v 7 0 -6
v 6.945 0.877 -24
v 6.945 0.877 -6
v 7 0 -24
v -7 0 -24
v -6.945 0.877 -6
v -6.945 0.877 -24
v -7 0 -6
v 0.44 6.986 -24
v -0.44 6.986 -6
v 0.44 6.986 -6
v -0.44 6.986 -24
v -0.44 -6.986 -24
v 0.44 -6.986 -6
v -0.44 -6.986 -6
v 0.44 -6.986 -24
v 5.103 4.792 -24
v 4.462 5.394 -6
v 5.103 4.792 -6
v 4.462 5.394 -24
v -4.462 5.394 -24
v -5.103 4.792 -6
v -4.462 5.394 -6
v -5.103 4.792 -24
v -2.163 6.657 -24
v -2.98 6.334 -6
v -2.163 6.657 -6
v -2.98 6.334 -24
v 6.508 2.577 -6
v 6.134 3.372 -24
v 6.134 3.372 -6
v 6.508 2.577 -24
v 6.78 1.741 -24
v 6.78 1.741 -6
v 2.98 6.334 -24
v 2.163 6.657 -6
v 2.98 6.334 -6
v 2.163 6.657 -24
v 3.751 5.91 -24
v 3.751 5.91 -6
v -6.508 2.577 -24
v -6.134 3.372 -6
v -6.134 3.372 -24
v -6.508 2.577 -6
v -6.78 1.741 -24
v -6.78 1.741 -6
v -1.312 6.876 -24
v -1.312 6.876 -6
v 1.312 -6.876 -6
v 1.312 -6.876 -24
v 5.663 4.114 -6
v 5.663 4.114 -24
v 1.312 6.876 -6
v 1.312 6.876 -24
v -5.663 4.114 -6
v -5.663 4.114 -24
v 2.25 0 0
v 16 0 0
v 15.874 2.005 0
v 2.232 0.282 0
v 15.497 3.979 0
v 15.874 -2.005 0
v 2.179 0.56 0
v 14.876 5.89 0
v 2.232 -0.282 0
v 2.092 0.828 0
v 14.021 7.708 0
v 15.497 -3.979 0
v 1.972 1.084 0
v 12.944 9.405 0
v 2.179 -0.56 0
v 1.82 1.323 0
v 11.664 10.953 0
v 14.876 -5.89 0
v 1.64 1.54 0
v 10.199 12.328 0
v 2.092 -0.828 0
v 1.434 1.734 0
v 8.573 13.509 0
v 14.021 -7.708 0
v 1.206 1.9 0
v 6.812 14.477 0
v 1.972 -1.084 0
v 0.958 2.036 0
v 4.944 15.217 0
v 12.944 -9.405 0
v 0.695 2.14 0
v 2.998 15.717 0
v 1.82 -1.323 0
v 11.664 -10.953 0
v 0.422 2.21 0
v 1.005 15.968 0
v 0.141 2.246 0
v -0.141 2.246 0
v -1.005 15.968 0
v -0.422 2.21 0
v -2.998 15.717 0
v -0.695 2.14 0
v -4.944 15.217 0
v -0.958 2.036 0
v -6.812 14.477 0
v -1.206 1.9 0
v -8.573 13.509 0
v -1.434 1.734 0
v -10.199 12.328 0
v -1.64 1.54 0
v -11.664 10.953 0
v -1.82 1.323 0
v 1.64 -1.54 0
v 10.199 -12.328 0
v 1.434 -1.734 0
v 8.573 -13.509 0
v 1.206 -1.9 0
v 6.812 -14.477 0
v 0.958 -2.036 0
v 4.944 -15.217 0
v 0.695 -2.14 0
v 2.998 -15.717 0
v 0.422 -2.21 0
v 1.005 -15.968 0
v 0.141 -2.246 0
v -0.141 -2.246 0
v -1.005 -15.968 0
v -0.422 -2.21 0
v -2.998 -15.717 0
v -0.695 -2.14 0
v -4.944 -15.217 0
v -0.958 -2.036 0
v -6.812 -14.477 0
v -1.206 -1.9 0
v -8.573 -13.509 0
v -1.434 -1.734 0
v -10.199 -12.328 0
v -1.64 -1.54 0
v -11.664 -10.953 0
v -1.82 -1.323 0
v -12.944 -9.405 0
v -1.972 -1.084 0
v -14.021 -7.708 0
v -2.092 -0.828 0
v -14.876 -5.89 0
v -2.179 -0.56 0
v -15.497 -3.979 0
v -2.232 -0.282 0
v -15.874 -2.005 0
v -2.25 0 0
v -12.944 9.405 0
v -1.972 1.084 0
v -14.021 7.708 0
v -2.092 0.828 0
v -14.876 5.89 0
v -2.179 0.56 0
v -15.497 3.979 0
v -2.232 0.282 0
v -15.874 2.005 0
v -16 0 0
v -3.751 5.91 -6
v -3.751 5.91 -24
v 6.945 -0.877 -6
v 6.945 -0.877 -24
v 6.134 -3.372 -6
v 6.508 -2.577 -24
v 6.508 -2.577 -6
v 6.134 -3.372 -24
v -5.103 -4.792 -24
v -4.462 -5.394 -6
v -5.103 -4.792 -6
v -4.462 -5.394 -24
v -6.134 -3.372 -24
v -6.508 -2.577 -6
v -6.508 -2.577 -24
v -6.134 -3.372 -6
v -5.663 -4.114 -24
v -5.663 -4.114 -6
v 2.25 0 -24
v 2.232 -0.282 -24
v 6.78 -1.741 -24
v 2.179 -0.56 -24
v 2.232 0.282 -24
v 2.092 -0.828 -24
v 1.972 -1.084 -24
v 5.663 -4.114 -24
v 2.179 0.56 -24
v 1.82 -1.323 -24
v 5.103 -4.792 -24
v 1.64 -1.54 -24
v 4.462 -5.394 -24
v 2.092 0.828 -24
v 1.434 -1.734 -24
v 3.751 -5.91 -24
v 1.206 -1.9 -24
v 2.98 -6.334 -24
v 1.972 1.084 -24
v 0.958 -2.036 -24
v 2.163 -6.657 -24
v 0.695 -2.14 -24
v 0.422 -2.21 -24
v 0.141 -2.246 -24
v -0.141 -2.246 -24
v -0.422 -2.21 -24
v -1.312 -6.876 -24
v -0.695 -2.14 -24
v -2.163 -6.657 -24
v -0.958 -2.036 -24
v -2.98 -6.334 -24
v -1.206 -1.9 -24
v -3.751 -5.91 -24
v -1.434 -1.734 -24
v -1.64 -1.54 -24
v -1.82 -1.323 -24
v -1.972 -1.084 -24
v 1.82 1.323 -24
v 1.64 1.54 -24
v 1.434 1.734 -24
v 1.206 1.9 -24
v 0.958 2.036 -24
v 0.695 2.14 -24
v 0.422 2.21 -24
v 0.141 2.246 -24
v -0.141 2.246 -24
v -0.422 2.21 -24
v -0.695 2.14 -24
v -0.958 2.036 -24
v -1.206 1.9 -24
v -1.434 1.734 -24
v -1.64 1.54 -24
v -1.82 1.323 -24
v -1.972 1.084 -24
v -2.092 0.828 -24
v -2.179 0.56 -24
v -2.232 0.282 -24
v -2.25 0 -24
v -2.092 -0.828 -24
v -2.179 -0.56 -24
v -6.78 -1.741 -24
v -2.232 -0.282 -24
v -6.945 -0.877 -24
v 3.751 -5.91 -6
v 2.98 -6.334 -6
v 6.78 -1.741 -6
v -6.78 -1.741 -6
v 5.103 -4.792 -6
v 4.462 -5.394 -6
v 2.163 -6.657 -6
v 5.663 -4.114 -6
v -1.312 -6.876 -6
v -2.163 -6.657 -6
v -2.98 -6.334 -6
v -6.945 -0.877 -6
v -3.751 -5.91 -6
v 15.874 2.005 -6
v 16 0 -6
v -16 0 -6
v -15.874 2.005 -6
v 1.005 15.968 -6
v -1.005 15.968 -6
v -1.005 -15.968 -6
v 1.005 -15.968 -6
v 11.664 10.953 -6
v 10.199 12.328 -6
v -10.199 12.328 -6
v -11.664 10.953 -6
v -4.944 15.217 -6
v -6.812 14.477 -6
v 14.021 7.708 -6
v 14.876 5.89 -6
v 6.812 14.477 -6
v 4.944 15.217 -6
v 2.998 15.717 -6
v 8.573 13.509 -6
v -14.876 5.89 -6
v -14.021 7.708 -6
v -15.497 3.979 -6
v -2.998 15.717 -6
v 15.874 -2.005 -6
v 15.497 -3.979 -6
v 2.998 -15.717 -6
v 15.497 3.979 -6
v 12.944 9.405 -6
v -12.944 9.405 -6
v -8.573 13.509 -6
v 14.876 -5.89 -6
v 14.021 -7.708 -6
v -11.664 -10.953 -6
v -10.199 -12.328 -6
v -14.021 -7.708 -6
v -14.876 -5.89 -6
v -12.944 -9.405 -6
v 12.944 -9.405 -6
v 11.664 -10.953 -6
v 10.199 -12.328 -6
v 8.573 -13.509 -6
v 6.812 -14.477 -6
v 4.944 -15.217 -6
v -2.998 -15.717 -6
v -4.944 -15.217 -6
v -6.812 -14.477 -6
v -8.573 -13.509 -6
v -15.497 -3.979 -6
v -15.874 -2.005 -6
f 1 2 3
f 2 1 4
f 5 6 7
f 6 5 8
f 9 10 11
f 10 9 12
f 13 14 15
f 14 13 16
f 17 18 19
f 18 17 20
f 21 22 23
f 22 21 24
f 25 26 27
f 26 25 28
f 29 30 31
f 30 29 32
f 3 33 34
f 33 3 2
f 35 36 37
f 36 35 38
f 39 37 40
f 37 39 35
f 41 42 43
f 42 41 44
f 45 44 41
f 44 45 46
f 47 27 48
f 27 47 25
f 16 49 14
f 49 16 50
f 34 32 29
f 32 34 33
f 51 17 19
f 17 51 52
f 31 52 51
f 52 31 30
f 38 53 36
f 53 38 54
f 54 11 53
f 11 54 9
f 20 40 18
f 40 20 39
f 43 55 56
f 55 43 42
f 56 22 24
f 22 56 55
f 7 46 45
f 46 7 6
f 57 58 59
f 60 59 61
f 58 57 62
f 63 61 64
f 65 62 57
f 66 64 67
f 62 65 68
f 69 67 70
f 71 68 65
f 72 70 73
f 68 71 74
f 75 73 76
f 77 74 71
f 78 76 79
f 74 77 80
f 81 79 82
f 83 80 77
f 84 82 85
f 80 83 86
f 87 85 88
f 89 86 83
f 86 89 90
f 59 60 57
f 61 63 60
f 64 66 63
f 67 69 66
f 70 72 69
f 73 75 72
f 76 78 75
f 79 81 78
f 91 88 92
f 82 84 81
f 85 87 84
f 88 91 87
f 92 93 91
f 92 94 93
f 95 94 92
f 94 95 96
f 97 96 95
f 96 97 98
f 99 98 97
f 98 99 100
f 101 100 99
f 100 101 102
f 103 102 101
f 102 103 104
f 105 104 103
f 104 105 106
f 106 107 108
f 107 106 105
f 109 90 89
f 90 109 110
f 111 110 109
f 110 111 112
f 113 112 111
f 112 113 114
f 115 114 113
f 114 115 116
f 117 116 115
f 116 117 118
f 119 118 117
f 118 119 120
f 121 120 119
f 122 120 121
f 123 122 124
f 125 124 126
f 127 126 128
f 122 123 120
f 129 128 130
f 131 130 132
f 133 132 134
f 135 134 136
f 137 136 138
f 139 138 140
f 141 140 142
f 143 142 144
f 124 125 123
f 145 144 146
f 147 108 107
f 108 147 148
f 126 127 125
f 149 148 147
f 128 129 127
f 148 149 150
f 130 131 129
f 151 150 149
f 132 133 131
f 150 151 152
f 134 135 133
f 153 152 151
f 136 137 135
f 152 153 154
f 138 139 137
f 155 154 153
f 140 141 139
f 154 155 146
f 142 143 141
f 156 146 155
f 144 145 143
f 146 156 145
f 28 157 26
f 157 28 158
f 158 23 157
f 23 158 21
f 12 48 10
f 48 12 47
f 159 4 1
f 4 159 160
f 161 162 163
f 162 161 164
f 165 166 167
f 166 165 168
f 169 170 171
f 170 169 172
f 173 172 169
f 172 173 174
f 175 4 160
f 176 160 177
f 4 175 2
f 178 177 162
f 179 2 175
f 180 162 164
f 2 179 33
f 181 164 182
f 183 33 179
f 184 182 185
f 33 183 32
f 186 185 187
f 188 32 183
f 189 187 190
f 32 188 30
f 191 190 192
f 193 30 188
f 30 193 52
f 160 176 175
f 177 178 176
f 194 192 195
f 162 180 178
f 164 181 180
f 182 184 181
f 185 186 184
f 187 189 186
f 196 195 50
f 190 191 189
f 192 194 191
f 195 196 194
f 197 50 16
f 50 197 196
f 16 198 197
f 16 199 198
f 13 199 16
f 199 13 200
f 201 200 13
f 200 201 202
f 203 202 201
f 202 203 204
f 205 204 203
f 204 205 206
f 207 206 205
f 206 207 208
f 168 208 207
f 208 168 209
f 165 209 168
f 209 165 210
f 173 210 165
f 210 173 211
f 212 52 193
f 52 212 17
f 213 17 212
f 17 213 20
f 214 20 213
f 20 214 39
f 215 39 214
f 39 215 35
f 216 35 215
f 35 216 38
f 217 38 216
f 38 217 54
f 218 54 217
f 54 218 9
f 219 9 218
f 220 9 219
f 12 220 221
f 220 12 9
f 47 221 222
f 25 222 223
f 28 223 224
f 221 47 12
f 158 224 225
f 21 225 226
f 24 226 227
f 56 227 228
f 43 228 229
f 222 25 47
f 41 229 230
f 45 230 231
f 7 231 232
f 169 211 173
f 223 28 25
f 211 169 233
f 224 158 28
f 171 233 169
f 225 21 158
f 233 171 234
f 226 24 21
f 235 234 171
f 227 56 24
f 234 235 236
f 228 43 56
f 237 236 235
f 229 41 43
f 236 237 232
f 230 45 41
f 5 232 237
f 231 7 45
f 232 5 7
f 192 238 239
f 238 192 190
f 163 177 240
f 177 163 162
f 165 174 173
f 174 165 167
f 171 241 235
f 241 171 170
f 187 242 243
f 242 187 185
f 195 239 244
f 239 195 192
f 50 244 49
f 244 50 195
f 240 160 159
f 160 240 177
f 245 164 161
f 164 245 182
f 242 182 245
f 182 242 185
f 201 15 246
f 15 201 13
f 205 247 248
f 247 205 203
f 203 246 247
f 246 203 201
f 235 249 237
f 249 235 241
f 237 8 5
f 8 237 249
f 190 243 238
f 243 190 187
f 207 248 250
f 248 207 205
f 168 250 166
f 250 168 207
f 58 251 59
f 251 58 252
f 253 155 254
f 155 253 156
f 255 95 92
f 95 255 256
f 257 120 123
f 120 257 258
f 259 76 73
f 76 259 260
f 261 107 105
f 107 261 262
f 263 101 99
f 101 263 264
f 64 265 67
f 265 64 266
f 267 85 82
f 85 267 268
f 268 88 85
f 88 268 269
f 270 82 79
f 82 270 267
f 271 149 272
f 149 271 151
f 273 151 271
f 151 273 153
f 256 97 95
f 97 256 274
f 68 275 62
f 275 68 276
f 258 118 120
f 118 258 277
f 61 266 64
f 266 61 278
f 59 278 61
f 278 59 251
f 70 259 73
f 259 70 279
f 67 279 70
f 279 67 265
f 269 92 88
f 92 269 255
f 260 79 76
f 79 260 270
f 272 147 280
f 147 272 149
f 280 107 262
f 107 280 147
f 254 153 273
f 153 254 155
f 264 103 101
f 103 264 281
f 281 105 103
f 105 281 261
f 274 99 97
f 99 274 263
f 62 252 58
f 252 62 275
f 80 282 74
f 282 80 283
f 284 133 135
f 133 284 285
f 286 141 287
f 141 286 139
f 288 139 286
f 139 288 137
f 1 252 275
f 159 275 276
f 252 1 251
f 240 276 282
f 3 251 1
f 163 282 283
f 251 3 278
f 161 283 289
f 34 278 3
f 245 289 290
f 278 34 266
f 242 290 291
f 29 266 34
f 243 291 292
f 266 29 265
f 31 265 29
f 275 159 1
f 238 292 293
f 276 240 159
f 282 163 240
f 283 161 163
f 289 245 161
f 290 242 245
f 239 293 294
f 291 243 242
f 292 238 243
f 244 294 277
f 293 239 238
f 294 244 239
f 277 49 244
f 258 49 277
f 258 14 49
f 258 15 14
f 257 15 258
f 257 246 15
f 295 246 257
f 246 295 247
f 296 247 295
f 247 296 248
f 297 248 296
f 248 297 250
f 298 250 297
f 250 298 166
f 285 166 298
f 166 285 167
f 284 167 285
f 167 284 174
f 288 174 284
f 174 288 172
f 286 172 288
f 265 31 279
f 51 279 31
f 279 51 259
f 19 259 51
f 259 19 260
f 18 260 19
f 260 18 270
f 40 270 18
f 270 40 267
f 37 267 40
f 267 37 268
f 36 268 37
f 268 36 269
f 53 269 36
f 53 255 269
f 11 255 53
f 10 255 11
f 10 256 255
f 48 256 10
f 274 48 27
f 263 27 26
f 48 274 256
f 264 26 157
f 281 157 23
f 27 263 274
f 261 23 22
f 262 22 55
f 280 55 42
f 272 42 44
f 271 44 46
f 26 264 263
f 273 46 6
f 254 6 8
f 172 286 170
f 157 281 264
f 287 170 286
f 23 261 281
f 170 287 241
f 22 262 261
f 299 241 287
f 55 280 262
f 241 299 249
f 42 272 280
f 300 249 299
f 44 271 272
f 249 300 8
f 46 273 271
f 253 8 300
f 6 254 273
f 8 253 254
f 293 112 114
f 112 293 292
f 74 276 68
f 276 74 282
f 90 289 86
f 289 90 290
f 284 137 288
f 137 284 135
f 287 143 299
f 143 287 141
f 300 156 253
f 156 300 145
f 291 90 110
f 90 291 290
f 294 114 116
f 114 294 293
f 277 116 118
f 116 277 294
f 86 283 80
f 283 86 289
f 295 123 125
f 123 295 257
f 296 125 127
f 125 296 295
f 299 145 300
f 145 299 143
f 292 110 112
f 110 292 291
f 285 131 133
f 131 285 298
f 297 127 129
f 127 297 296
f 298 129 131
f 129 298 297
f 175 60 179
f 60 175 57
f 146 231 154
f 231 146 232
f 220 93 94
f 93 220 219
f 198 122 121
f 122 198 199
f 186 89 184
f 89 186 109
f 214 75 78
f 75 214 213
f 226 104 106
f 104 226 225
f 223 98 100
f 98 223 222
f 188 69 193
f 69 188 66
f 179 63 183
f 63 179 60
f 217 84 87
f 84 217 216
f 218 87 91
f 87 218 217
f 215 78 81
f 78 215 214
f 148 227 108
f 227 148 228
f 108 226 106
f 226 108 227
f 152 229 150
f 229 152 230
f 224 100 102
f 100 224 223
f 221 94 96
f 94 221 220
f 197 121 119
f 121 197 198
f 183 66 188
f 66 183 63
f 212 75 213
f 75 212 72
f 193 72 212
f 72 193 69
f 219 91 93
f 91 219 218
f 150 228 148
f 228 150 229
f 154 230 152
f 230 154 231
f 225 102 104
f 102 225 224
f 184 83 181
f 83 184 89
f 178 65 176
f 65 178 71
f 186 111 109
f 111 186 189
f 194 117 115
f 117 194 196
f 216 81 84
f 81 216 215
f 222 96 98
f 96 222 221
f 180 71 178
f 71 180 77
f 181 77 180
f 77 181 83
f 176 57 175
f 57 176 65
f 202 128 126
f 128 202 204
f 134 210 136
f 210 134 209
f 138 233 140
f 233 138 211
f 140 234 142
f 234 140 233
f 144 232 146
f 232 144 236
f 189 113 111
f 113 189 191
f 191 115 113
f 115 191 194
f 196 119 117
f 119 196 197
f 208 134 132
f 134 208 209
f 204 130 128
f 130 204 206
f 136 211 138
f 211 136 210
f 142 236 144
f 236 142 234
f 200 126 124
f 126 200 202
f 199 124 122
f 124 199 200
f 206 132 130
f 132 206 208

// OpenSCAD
$fn = 50;


difference() {
	union() {
		translate(v = [0, 0, -24.0000000000]) {
			cylinder(h = 24, r = 7.0000000000);
		}
		translate(v = [0, 0, -6.0000000000]) {
			cylinder(h = 6, r = 16.0000000000);
		}
	}
	union() {
		#translate(v = [0, 0, -24]) {
			cylinder(h = 24, r = 2.2500000000);
		}
	}
}
